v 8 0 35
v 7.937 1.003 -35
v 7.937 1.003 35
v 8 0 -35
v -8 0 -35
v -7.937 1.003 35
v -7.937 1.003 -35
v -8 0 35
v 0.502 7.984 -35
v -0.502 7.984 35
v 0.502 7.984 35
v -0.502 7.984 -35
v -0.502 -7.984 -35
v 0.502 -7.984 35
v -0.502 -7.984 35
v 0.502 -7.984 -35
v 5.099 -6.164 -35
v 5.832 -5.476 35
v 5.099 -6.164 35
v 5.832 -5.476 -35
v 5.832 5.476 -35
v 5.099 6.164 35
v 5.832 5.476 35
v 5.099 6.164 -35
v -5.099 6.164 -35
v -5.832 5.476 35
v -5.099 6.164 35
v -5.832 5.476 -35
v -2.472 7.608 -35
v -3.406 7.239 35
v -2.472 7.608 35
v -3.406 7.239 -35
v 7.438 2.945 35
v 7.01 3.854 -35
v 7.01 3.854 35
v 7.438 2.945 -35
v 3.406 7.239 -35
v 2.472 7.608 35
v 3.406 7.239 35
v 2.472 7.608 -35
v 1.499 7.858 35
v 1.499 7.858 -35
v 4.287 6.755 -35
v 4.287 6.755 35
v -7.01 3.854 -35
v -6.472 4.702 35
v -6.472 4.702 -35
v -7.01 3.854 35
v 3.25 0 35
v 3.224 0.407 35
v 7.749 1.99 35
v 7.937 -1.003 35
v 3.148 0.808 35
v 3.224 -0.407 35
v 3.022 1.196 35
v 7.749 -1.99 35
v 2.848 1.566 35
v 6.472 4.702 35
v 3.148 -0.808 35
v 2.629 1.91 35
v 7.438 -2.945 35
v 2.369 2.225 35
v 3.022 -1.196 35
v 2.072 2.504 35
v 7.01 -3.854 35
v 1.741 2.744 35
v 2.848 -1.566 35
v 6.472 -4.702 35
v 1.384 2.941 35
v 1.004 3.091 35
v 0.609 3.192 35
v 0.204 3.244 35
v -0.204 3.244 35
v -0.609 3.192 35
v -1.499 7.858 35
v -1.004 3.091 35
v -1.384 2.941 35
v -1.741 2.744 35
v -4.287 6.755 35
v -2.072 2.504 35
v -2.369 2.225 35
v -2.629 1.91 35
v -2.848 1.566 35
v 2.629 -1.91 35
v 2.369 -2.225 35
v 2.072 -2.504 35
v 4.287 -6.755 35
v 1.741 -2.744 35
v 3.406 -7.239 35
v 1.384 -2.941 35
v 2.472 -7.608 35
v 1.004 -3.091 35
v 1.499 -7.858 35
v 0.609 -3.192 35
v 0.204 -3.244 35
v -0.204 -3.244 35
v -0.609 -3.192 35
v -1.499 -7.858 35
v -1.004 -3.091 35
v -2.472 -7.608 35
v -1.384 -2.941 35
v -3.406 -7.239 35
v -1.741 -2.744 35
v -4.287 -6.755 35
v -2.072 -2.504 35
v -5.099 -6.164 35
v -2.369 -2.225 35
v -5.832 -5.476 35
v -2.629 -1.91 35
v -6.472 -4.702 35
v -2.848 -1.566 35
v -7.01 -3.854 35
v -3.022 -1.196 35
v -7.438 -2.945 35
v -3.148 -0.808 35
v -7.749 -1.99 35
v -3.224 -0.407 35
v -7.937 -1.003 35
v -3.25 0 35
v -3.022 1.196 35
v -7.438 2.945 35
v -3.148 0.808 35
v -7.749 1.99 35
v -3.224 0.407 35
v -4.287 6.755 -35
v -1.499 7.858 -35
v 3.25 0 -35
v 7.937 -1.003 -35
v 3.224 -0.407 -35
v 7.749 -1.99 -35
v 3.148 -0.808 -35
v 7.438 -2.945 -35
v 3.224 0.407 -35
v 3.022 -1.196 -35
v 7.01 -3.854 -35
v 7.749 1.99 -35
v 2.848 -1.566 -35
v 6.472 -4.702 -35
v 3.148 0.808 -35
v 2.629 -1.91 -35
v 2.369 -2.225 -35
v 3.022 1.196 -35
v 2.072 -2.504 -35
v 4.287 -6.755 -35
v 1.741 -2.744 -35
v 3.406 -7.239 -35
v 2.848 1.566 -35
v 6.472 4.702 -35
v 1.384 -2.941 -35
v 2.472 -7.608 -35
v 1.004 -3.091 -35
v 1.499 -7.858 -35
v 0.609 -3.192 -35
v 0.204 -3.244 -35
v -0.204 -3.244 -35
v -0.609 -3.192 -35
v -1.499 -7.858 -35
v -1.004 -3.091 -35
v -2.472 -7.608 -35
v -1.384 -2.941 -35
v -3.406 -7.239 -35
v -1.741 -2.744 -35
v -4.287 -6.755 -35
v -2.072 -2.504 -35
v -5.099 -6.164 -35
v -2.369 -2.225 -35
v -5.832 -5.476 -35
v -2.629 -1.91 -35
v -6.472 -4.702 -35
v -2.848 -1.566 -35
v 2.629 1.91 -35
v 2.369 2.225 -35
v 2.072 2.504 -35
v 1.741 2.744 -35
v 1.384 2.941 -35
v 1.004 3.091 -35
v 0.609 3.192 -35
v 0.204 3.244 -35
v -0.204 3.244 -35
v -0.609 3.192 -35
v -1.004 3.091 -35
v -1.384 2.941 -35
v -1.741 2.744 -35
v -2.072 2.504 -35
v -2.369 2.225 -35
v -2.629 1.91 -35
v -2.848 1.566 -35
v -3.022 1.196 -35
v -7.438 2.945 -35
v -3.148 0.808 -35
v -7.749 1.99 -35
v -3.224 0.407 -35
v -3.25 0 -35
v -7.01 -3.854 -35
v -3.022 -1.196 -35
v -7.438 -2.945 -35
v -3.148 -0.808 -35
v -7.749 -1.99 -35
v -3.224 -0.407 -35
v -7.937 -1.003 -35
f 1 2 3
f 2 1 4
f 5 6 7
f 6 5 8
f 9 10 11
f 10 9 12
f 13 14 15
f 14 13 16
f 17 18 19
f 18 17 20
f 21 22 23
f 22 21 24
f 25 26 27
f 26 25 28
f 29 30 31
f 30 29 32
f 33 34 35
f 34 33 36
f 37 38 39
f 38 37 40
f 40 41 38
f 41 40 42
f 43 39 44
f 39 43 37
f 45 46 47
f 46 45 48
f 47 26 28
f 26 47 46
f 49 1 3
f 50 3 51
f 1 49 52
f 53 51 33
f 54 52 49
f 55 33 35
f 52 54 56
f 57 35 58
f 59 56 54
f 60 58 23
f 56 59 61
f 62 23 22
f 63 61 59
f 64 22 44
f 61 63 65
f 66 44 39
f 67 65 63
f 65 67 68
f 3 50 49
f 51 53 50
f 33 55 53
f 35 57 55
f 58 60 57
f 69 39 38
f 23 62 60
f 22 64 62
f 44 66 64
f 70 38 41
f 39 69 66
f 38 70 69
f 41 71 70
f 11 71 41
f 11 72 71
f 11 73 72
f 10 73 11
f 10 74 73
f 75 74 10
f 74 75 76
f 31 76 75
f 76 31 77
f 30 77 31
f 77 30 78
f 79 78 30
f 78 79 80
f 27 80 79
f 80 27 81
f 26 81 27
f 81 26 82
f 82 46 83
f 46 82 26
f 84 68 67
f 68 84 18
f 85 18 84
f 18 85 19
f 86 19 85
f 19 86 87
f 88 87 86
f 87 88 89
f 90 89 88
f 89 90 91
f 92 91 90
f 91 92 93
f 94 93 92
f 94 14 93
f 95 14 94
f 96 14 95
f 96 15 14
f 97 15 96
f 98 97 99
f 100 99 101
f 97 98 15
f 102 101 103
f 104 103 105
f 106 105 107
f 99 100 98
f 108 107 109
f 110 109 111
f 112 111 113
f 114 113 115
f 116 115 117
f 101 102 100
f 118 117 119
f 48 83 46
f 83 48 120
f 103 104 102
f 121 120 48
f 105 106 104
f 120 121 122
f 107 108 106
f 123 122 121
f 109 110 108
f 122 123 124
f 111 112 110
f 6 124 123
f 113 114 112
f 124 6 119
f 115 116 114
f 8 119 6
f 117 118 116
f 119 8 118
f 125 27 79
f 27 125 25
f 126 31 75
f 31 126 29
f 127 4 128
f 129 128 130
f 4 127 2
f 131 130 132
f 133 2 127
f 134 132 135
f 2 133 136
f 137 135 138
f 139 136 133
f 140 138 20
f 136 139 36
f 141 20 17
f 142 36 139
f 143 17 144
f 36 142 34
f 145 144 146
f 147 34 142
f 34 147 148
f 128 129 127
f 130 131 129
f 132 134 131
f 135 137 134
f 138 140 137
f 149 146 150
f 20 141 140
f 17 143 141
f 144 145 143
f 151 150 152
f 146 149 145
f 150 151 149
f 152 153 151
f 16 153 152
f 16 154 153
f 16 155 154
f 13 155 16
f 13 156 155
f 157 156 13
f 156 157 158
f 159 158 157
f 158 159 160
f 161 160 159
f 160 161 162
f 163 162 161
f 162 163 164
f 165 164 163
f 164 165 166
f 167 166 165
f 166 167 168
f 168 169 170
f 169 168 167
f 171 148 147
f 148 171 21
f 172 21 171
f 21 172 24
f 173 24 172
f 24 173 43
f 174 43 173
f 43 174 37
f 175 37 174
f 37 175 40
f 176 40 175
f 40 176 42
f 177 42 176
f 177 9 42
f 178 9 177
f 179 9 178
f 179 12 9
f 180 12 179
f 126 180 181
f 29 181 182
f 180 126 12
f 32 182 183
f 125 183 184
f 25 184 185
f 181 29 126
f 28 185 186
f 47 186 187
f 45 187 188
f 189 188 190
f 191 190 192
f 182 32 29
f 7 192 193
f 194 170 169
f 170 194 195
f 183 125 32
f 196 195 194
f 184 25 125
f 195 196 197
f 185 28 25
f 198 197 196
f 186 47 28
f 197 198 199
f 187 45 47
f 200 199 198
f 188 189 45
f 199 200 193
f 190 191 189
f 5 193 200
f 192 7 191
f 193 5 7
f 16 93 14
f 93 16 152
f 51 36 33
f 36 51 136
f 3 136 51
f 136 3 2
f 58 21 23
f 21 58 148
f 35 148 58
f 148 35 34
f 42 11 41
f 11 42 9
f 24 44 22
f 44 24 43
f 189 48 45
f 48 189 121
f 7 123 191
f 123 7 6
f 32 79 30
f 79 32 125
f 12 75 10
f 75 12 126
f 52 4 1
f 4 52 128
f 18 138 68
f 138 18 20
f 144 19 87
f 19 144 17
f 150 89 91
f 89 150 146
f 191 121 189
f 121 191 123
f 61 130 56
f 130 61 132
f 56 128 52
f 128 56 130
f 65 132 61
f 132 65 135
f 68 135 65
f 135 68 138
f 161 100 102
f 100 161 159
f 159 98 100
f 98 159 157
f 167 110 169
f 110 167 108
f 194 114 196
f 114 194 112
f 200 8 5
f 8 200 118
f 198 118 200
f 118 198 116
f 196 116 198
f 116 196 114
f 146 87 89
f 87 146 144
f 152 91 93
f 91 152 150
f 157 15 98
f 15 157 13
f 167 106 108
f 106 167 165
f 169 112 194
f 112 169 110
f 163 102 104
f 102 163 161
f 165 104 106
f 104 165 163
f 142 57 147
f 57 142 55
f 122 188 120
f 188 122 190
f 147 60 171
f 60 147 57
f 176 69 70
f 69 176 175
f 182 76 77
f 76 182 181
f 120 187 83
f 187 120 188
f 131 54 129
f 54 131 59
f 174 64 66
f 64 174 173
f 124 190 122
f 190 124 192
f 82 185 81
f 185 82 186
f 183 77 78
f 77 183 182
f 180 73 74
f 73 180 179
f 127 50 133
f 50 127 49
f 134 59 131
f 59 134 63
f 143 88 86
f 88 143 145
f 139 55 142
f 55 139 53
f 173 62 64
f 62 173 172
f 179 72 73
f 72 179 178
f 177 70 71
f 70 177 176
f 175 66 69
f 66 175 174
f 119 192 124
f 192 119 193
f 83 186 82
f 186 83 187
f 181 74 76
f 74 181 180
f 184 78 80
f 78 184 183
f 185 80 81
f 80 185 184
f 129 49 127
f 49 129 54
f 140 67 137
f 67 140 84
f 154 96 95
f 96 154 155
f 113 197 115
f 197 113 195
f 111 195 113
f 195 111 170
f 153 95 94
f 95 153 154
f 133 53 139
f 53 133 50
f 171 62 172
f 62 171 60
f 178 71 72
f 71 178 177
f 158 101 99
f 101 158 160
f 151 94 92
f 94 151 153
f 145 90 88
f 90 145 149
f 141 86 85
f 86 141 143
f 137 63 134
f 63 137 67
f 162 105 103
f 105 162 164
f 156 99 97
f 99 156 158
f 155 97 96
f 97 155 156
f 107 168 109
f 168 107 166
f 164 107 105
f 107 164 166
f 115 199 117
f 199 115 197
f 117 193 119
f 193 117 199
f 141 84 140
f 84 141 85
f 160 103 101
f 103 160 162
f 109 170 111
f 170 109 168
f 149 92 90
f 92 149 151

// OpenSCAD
$fn = 50;


difference() {
	union() {
		translate(v = [0, 0, -35.0000000000]) {
			cylinder(h = 70, r = 8.0000000000);
		}
	}
	union() {
		translate(v = [0, 0, -100.0000000000]) {
			cylinder(h = 200, r = 3.2500000000);
		}
	}
}
